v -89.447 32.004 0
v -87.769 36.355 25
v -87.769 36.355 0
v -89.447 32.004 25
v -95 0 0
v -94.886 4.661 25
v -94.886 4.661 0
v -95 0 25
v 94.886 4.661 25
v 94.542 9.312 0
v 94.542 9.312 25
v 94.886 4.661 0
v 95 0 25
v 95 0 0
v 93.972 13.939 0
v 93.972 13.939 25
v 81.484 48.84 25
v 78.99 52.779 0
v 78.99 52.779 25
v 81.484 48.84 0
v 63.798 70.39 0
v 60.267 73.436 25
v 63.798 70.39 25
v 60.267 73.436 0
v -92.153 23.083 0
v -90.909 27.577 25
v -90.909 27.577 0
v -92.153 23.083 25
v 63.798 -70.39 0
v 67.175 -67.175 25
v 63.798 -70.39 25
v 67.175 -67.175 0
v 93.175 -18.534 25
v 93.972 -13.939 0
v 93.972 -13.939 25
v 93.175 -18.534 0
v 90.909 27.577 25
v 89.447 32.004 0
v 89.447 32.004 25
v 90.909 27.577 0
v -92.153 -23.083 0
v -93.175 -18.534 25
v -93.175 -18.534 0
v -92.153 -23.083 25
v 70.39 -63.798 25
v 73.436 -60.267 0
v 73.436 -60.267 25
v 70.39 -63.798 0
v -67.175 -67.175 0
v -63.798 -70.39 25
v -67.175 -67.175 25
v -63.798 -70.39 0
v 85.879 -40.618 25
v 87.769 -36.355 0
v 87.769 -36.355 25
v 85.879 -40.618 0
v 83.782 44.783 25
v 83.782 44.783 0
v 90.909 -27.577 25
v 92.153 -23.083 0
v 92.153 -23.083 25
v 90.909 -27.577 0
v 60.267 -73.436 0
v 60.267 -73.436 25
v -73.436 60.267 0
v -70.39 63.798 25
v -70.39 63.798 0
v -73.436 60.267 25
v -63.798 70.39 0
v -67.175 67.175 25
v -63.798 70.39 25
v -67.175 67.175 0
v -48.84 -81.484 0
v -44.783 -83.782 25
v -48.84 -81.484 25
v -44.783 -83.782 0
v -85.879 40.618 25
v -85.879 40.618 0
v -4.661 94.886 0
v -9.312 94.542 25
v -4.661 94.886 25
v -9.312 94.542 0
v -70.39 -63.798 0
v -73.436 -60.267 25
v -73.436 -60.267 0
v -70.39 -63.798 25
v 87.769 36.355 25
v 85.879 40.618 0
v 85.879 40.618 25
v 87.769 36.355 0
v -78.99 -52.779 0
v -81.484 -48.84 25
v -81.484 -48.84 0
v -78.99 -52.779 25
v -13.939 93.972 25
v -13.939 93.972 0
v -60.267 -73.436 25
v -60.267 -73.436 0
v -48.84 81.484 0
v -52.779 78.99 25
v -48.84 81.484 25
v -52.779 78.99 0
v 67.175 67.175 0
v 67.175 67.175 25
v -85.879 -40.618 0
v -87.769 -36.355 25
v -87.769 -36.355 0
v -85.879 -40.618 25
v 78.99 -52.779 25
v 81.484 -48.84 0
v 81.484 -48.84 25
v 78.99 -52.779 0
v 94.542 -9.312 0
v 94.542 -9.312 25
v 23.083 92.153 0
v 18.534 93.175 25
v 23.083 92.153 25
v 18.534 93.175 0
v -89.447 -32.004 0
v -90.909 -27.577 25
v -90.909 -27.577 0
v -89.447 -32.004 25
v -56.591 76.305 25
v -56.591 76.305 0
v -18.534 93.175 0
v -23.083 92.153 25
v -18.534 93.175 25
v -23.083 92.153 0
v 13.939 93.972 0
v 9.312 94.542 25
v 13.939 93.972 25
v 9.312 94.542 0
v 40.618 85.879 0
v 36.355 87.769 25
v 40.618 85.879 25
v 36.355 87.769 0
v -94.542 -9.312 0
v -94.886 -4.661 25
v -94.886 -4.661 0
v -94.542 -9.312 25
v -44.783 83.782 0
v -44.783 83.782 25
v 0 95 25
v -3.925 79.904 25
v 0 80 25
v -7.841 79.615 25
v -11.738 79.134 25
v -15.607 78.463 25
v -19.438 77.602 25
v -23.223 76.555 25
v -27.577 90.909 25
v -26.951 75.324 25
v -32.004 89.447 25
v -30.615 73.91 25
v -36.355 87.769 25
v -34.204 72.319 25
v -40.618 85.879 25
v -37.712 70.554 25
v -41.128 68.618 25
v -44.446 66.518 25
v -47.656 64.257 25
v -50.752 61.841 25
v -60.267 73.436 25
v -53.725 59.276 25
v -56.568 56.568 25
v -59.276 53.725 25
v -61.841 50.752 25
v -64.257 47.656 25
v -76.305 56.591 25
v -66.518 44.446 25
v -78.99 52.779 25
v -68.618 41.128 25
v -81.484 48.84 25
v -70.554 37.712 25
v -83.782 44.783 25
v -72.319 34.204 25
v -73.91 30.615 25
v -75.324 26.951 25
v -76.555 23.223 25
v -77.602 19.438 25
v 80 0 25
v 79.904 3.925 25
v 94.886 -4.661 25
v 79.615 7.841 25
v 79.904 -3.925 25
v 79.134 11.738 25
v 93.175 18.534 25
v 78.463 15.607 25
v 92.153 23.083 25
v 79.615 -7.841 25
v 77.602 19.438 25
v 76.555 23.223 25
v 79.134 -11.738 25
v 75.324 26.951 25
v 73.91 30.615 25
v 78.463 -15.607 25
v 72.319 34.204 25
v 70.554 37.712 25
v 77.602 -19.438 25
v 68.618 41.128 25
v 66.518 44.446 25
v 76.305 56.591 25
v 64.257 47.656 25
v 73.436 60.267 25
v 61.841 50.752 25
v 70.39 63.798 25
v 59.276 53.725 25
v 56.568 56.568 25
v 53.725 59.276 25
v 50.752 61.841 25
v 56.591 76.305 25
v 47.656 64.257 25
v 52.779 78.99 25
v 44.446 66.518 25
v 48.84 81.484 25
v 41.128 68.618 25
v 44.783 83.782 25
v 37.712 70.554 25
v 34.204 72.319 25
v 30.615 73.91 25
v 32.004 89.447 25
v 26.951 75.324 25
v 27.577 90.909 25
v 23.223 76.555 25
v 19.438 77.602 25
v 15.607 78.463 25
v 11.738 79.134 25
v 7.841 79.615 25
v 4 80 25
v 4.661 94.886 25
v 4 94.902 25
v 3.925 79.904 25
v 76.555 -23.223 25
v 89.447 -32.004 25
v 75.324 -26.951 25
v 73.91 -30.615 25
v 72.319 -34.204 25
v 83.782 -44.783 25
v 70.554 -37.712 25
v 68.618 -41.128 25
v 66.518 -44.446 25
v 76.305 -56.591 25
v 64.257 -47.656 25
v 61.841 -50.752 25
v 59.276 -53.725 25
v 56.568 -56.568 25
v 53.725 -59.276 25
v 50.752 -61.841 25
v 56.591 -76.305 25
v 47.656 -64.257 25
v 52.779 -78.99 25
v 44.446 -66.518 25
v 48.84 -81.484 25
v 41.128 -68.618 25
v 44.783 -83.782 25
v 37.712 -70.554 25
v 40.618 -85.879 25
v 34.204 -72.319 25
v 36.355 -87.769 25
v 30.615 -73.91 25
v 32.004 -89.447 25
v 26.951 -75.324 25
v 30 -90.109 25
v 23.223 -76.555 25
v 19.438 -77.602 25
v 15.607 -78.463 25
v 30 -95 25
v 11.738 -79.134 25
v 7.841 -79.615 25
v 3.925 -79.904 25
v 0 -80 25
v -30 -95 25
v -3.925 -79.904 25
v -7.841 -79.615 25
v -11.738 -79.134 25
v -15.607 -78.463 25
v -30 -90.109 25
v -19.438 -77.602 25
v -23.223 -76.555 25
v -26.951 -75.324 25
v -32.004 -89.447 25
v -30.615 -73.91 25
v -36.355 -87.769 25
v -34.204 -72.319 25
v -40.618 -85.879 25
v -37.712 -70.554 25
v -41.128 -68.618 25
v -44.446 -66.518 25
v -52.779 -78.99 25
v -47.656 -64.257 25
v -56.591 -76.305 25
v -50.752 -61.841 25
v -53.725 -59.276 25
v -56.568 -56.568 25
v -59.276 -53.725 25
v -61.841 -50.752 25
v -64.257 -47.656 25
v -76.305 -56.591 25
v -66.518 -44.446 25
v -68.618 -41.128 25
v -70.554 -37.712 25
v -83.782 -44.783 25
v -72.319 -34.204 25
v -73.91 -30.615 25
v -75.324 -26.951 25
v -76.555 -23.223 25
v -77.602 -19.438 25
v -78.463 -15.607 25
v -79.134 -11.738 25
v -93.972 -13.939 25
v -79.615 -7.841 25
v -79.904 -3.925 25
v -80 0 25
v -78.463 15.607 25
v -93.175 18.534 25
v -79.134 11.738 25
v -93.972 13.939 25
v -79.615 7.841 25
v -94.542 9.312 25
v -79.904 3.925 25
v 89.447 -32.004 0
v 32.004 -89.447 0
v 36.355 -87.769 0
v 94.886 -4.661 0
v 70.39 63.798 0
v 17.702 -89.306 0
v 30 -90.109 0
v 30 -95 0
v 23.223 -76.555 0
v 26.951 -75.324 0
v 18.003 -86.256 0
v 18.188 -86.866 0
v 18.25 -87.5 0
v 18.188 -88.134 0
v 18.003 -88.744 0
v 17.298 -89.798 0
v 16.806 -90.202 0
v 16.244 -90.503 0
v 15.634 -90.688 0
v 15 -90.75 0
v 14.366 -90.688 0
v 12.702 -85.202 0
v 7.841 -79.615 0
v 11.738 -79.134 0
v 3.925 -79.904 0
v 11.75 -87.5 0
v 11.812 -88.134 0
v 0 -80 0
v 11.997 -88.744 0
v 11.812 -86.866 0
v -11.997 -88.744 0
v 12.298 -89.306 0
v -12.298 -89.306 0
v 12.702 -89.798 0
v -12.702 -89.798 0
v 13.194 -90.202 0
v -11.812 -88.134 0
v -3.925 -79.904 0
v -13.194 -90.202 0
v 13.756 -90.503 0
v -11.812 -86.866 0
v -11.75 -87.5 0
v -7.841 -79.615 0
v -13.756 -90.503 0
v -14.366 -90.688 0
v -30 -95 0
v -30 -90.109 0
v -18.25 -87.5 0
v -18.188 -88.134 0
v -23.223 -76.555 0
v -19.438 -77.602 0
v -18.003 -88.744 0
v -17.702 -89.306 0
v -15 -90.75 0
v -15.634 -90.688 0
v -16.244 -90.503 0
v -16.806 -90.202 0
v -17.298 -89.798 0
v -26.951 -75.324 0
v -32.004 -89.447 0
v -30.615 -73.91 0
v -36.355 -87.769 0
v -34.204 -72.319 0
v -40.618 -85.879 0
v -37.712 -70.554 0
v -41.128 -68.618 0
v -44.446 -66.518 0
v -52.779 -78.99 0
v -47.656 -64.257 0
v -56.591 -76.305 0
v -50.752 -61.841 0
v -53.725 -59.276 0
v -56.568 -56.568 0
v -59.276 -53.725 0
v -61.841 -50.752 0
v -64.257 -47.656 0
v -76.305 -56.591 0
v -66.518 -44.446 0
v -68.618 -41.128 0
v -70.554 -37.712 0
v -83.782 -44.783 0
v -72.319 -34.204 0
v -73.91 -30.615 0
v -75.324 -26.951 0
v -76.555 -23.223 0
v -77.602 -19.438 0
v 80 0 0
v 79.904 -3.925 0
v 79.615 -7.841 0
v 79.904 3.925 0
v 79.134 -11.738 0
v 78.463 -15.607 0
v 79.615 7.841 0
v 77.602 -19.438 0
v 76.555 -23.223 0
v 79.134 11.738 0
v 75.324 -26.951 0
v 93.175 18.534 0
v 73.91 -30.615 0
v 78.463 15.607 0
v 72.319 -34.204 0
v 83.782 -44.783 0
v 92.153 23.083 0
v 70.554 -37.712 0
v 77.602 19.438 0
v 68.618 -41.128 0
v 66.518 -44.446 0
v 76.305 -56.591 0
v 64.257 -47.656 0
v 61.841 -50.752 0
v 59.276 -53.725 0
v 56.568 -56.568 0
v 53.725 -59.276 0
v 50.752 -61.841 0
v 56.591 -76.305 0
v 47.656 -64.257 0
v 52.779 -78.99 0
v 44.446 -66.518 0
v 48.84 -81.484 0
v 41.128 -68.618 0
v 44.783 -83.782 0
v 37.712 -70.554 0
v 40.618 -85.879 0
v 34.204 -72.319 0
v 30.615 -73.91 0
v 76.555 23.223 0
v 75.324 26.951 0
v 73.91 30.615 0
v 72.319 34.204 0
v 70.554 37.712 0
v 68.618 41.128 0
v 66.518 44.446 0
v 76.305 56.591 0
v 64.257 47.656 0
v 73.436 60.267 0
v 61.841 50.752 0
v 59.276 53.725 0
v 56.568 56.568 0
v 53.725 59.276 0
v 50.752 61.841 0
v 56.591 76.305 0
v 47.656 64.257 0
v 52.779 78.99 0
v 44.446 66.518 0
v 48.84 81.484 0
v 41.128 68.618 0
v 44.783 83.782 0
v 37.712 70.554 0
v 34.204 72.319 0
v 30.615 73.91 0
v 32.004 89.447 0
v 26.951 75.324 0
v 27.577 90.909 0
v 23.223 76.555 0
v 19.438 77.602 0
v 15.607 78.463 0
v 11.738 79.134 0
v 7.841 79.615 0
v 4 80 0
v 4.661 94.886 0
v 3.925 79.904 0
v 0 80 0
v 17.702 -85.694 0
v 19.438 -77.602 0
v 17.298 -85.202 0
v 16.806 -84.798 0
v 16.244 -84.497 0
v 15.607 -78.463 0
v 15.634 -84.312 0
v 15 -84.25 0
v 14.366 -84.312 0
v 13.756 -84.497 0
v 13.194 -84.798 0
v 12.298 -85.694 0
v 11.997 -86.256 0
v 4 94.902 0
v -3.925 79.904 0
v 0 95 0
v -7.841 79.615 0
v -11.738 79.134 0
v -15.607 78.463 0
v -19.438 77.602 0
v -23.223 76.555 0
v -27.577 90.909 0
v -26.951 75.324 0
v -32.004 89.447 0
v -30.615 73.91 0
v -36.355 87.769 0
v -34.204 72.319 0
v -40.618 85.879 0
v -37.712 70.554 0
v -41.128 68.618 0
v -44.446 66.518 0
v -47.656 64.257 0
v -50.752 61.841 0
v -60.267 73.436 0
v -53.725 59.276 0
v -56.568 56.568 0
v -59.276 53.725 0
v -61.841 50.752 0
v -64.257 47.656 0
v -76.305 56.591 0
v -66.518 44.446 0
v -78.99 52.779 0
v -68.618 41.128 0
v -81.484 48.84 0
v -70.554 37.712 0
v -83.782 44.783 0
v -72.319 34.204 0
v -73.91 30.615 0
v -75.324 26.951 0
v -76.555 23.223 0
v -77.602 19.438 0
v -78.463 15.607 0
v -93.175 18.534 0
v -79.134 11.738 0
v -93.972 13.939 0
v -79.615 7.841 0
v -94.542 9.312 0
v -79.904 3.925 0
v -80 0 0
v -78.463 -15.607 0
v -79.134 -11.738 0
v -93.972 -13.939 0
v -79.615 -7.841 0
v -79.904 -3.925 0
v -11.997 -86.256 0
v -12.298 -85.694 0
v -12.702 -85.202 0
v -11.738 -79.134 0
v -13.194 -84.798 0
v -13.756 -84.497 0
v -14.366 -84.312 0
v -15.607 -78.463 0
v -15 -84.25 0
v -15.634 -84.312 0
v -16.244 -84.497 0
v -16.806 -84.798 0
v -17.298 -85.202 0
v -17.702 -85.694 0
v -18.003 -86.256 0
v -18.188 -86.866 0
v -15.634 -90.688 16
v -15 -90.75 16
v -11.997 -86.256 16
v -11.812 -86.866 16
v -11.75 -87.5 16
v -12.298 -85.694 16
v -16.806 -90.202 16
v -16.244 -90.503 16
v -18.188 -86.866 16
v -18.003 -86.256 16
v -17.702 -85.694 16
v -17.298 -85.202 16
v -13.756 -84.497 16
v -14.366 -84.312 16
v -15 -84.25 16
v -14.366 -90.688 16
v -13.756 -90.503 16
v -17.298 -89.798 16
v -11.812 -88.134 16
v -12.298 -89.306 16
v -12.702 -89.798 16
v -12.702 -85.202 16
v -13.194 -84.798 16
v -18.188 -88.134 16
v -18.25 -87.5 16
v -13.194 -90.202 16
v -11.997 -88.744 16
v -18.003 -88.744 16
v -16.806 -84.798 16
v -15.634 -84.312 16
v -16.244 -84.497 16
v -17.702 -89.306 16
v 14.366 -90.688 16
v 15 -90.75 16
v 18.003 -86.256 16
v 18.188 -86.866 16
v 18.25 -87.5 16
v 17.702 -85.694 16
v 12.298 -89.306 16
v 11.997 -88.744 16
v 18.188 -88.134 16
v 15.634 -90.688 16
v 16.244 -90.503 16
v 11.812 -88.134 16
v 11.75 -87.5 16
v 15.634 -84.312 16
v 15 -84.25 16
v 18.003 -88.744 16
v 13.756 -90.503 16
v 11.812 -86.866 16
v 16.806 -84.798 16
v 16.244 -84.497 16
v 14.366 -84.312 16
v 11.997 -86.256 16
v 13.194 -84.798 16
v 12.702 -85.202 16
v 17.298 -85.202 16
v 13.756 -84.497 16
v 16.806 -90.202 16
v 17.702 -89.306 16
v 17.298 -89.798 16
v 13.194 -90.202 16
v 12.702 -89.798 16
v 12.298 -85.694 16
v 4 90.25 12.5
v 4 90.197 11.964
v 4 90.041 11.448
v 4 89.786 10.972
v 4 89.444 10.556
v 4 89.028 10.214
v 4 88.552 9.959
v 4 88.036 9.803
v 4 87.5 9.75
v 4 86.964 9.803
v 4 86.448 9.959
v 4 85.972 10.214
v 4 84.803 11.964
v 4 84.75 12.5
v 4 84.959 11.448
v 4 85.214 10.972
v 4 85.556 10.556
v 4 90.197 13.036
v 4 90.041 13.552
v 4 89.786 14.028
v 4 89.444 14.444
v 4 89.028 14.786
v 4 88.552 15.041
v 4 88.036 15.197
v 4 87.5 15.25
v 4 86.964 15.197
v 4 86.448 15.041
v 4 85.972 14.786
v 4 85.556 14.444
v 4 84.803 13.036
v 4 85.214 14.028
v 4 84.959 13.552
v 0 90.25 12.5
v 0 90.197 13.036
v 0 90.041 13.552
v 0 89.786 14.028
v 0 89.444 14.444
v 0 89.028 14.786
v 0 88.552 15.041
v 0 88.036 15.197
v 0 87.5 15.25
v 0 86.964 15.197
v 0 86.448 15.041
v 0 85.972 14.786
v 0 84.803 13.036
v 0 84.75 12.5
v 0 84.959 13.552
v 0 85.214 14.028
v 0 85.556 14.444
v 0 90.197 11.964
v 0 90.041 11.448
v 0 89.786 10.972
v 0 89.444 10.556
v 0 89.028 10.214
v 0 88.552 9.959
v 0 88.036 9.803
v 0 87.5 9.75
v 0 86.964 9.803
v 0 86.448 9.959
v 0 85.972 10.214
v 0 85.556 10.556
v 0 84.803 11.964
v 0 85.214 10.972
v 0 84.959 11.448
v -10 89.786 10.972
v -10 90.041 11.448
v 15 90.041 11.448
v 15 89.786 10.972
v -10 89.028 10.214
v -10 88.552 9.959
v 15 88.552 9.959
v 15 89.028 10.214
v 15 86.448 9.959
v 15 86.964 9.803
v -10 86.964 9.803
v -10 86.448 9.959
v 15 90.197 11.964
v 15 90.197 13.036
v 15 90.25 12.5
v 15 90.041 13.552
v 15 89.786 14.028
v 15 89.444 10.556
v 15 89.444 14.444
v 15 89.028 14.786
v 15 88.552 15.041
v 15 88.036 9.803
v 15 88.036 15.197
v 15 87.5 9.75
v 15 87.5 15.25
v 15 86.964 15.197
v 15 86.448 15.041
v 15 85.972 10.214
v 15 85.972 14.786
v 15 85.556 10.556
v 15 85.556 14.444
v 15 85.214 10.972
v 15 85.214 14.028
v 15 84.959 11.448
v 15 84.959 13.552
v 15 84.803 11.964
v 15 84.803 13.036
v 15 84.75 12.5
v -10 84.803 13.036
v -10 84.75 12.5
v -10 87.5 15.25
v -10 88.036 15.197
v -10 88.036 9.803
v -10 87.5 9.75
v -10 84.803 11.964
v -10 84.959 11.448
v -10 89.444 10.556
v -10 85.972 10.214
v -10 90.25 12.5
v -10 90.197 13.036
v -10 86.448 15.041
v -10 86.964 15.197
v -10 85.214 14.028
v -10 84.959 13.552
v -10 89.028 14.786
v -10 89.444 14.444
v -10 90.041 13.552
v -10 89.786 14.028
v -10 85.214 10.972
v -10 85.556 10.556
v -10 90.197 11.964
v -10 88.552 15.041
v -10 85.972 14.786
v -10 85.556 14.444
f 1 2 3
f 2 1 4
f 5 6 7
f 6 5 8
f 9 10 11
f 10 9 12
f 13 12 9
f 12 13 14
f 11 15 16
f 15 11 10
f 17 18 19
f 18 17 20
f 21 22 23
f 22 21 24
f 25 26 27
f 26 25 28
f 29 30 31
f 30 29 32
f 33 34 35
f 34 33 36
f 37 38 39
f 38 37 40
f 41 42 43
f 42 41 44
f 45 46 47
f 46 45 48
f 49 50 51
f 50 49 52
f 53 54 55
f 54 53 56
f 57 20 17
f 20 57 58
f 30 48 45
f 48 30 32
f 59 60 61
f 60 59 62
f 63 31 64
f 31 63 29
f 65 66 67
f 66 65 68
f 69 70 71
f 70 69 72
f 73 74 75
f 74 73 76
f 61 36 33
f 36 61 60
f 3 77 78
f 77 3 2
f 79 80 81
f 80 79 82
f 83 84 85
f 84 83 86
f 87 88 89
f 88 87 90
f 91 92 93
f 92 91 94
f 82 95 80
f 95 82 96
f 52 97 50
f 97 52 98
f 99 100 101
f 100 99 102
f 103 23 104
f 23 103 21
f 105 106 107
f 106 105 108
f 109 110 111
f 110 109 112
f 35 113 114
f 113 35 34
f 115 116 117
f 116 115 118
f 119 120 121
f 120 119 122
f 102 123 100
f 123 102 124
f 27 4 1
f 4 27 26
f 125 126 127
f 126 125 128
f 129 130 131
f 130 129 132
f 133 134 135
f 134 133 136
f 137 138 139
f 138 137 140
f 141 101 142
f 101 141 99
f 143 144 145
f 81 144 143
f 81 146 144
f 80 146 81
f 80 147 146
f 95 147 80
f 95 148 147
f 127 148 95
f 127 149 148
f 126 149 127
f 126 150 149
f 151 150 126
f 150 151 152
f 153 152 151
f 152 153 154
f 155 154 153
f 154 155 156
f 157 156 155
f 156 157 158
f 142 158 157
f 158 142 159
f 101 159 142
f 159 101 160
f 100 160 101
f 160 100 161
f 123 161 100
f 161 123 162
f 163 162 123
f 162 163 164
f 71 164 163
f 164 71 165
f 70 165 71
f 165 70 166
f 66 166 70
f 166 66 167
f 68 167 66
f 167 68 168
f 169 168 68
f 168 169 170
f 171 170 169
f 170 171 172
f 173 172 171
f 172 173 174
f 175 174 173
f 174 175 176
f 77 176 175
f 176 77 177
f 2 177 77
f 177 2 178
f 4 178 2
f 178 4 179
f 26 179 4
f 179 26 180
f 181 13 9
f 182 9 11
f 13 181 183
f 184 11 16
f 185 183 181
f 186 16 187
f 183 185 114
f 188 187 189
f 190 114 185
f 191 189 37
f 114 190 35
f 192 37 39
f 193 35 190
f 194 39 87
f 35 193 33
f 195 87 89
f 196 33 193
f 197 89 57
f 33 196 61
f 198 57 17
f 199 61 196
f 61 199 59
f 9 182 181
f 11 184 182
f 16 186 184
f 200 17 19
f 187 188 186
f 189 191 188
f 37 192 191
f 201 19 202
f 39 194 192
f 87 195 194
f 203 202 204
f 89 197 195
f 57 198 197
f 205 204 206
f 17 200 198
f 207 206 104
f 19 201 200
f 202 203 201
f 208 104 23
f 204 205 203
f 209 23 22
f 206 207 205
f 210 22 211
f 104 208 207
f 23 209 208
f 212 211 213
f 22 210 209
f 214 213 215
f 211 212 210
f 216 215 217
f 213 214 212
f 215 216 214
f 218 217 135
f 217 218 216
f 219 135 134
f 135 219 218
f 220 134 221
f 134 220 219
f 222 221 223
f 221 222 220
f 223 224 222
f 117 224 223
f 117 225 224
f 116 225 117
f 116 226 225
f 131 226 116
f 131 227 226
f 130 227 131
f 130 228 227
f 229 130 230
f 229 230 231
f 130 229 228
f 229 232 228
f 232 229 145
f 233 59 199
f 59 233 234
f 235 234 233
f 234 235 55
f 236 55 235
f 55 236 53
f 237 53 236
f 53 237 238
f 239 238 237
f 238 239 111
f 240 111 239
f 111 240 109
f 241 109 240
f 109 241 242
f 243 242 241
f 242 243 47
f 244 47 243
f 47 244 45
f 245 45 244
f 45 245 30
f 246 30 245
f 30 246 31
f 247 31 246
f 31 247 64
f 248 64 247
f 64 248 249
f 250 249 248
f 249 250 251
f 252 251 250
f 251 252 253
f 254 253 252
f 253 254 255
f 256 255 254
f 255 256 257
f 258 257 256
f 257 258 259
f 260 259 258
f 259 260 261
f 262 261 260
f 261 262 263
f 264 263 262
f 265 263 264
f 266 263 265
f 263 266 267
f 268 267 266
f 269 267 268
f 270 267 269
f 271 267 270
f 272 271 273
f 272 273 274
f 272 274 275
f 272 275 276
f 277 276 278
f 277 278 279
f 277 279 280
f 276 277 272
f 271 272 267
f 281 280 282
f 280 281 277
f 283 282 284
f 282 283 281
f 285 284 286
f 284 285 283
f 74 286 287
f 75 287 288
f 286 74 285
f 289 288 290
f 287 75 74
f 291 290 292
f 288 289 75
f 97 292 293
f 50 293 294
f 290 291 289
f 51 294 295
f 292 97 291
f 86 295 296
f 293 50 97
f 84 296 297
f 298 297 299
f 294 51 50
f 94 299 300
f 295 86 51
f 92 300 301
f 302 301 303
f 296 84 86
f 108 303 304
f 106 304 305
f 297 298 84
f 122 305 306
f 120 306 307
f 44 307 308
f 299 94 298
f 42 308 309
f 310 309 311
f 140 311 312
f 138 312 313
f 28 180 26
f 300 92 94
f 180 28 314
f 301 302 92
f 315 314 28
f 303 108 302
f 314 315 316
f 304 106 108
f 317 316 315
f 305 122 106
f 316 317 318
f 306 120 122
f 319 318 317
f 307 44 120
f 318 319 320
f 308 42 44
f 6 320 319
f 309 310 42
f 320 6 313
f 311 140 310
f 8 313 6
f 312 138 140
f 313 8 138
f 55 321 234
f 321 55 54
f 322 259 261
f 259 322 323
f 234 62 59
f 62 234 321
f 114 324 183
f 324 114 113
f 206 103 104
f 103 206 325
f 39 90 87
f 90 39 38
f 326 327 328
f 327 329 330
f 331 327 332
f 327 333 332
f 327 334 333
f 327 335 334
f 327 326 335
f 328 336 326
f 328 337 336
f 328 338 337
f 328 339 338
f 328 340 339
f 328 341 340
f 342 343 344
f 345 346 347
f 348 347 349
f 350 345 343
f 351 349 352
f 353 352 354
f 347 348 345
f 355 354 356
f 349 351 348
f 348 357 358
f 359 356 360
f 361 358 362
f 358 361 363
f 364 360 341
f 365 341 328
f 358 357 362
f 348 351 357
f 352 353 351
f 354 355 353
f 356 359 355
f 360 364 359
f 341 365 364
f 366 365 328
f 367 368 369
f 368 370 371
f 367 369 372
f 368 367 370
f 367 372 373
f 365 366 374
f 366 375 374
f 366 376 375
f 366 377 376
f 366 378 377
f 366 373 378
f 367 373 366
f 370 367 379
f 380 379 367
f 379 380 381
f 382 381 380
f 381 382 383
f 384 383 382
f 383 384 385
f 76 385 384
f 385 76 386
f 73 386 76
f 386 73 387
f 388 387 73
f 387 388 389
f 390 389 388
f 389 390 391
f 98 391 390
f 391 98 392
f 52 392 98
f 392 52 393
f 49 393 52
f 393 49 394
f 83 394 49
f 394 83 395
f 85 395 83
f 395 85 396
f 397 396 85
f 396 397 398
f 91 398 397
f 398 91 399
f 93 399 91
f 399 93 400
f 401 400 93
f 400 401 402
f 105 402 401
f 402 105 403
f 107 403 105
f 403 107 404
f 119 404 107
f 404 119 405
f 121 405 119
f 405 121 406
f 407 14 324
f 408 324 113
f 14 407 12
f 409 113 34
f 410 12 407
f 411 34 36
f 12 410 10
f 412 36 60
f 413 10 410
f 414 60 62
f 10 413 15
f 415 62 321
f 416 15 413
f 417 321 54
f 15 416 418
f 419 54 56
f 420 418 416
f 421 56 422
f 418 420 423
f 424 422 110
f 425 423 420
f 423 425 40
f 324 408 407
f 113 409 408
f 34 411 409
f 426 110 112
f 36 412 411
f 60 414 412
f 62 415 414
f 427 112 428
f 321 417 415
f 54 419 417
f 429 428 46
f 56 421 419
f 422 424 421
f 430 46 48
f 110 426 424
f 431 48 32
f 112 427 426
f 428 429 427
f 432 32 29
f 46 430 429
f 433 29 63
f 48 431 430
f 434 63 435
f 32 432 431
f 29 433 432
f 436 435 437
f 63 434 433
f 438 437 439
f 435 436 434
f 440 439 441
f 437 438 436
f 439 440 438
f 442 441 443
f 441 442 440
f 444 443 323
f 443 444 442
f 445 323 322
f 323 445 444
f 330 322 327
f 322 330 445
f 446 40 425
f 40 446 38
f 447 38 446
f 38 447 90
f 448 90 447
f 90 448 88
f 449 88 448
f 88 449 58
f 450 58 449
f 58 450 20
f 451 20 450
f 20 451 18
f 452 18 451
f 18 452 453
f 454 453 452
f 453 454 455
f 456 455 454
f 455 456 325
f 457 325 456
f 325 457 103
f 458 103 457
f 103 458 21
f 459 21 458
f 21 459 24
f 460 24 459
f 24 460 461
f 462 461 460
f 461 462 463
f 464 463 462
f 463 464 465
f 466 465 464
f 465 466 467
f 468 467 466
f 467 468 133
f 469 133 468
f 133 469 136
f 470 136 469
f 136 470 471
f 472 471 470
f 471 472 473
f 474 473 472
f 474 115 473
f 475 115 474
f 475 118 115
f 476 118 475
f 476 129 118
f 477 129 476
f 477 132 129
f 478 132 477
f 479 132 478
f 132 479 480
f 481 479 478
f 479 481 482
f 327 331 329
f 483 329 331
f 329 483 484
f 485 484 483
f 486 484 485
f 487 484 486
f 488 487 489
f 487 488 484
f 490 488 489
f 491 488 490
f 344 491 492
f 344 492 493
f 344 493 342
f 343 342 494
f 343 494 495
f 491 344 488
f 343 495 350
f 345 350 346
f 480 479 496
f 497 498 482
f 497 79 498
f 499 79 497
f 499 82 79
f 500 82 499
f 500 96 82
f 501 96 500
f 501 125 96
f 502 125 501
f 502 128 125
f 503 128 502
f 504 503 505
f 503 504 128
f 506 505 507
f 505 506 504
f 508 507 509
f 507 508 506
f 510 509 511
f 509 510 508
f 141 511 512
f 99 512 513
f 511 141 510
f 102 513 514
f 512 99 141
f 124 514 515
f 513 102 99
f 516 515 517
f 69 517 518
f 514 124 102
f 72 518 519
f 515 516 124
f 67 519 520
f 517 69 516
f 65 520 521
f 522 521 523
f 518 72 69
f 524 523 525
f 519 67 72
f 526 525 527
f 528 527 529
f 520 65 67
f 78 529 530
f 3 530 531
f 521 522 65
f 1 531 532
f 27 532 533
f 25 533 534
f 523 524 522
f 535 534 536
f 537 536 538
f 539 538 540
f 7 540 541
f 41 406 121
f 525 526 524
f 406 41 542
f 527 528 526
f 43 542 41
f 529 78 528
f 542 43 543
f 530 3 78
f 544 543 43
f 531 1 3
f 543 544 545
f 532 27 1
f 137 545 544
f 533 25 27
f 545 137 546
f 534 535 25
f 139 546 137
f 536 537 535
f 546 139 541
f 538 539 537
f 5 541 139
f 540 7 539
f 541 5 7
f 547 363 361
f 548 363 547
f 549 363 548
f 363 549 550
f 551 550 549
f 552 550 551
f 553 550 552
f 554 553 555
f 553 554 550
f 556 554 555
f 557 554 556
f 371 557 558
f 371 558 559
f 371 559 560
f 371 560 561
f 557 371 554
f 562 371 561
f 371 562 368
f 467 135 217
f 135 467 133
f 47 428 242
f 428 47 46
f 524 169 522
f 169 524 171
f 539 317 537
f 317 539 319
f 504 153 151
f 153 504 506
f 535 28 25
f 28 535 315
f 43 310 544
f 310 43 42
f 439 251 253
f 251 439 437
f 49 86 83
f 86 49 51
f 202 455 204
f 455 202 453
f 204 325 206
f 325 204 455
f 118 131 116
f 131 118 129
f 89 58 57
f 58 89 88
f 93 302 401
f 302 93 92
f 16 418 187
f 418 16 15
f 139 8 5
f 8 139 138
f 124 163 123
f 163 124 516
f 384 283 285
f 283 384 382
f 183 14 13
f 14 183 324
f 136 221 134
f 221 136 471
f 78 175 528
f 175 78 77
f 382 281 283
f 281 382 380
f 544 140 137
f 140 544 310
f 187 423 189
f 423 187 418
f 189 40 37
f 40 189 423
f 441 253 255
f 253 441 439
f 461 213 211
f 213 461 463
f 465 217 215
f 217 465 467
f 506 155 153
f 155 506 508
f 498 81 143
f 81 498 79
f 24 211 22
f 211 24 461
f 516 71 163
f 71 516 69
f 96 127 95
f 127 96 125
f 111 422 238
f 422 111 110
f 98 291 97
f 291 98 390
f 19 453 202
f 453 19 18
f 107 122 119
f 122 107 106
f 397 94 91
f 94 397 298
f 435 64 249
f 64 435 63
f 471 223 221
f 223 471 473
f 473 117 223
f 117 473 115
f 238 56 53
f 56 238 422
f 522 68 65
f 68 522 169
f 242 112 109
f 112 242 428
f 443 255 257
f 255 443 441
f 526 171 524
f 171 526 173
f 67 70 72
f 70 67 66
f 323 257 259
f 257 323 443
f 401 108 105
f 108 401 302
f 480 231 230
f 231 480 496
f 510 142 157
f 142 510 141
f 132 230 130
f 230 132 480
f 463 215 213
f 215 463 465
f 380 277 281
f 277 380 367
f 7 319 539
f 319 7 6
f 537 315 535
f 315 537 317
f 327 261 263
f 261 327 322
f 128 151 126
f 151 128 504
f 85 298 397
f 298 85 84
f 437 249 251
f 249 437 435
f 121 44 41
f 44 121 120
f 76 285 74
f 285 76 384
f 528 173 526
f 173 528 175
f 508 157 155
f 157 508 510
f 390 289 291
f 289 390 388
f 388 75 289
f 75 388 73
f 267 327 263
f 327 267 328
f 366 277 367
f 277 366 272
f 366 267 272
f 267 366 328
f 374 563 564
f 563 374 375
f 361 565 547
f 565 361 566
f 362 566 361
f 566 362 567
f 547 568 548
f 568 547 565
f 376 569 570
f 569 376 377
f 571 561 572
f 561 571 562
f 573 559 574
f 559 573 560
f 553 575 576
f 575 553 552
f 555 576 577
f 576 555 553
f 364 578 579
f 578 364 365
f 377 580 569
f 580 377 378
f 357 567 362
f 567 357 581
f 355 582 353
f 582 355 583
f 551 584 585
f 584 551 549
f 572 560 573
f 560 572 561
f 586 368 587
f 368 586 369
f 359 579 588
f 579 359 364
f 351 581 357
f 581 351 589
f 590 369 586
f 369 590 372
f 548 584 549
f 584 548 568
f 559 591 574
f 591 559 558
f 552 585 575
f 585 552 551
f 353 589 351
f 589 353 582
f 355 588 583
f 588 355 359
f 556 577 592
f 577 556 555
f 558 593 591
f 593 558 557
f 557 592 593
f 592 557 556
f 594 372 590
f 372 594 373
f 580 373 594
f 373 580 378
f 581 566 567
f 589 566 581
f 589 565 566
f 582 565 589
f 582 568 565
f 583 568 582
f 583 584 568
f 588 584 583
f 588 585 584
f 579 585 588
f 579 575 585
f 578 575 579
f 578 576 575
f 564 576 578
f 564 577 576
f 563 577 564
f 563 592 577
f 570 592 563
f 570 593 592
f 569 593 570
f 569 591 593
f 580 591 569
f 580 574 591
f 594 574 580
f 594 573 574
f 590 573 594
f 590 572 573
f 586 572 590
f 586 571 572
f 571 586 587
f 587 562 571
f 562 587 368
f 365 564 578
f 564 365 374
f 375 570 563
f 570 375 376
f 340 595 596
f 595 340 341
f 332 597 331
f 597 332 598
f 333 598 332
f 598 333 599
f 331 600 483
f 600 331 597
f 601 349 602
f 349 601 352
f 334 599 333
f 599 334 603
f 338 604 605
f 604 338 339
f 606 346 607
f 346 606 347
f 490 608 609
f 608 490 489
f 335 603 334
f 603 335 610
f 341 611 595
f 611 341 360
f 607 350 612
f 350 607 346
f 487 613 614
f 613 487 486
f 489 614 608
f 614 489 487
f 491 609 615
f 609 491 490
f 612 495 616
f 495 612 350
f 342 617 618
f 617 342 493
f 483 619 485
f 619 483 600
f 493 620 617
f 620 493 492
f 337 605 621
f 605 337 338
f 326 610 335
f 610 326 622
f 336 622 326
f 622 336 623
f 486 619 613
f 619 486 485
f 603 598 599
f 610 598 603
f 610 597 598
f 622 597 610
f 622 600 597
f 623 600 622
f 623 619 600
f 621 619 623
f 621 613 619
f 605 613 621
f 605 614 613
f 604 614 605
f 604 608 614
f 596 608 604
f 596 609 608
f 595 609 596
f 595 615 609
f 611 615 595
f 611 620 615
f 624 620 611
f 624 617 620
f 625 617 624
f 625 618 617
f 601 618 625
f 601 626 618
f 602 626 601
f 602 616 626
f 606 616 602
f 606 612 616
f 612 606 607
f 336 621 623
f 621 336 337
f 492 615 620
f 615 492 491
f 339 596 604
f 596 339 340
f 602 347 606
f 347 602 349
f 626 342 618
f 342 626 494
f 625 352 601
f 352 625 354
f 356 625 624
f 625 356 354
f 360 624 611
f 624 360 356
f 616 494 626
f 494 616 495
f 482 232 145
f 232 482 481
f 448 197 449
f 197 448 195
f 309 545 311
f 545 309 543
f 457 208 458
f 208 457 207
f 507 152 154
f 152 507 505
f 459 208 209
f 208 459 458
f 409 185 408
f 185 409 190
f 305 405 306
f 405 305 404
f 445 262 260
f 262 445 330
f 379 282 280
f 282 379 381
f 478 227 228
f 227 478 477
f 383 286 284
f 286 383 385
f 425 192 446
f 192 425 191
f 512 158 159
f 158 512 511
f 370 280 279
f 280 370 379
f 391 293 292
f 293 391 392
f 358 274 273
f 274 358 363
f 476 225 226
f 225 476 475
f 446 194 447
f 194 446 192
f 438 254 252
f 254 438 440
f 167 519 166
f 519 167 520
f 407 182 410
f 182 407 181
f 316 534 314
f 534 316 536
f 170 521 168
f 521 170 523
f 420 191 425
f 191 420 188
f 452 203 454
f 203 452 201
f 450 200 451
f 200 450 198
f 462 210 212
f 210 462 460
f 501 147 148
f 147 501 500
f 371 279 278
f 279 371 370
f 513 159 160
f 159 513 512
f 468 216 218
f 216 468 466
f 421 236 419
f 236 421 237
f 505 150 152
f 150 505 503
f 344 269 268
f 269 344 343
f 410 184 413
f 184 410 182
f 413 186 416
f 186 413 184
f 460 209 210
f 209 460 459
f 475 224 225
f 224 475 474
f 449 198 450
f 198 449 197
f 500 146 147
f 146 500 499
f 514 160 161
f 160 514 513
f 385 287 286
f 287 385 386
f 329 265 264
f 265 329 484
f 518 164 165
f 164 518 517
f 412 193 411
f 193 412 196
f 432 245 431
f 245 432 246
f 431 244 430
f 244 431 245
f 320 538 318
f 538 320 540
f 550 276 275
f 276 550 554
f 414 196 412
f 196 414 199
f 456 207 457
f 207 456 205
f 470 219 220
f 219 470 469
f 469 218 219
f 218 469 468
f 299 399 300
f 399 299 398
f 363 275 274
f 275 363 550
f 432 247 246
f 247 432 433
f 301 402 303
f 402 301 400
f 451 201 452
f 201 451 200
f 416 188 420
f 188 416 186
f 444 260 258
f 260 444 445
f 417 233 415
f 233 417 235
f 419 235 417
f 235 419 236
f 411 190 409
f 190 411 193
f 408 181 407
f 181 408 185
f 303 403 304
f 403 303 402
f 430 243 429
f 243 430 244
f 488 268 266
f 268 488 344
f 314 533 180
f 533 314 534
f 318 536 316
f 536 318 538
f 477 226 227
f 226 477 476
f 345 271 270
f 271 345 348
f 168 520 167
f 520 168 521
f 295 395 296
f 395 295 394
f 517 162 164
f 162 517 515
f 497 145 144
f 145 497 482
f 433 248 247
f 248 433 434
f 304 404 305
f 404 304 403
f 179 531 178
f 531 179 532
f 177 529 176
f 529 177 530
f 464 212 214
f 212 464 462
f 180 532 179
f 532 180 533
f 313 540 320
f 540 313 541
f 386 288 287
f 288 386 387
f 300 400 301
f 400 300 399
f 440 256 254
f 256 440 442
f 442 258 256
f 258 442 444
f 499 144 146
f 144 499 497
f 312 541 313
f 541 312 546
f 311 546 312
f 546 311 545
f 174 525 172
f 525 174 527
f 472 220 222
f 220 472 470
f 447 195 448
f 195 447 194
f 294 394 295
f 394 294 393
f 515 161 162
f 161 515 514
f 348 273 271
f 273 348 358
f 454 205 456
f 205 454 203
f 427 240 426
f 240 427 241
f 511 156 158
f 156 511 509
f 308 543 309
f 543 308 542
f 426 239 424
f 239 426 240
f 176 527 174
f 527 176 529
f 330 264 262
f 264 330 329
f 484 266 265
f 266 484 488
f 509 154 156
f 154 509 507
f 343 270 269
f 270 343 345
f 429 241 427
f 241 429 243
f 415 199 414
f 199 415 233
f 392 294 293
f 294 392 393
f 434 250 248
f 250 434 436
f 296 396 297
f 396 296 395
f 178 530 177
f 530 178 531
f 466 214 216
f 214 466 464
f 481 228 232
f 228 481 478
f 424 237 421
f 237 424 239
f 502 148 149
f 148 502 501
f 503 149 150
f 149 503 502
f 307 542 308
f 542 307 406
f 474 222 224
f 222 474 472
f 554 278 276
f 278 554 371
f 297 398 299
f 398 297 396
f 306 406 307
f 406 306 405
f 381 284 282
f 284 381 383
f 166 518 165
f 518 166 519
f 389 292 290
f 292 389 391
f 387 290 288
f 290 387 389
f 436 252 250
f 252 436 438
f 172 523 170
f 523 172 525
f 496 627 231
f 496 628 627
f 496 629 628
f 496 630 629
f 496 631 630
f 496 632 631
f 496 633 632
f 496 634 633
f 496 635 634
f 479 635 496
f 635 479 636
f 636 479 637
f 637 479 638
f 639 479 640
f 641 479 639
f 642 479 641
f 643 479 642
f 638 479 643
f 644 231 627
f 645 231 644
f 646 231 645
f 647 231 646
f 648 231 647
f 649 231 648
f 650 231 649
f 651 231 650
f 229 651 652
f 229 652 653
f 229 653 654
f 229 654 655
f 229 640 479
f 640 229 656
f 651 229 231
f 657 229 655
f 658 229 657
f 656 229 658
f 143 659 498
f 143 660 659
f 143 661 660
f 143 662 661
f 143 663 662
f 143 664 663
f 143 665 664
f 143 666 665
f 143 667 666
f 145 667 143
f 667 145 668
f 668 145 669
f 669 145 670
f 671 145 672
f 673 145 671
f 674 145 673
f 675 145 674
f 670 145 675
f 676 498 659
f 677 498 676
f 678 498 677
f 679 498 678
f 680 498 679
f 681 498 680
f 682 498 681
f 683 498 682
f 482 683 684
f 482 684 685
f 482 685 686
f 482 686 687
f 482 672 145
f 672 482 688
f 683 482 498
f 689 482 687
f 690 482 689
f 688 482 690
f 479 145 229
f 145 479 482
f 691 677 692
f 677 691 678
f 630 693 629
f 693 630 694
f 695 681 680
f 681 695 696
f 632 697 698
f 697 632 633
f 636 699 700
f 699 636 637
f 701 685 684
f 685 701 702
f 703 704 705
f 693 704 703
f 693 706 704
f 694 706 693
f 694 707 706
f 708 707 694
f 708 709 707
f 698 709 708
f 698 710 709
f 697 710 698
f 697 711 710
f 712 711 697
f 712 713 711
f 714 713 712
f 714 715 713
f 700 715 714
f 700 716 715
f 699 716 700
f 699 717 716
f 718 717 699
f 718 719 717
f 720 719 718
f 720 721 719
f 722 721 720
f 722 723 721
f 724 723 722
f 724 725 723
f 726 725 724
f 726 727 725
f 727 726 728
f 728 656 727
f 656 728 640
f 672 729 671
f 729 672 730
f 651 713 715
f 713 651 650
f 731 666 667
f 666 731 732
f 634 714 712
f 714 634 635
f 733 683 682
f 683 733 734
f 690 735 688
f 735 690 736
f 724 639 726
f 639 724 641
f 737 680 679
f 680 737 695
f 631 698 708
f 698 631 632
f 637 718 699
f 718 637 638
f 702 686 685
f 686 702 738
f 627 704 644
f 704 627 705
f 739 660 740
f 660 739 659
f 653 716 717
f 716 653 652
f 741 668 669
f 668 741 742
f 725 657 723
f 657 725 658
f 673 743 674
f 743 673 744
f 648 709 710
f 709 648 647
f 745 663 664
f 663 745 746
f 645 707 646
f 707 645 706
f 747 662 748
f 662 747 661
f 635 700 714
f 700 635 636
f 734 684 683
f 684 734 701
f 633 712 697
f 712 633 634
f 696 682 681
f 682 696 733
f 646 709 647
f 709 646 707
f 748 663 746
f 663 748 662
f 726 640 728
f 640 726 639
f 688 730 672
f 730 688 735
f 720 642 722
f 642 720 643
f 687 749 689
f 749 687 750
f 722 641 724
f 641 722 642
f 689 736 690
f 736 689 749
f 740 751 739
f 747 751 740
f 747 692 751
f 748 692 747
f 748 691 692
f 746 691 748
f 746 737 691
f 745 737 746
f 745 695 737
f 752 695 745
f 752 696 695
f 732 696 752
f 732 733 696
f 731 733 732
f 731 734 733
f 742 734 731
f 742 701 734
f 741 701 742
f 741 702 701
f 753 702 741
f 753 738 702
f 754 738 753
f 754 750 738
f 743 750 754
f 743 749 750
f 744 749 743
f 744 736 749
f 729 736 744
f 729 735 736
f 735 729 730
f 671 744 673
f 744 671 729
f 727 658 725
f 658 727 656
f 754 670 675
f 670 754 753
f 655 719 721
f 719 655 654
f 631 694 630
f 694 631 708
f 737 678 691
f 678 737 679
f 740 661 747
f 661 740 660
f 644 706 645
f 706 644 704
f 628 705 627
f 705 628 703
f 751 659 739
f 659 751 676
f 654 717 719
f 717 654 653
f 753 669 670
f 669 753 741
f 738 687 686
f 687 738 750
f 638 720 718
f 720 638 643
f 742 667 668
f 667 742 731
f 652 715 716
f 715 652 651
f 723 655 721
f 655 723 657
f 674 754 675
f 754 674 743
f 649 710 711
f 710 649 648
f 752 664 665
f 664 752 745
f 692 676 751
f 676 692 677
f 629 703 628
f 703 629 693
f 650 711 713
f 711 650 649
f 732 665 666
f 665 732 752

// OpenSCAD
// Tube Rings (镜筒抱箍)
// 单位: mm

tube_od = 160; // 镜筒外径
ring_thickness = 15; // 抱箍壁厚
ring_width = 25; // 抱箍宽度
base_flat = 60; // 底部连接鸠尾板的平底宽度

module tube_ring() {
    difference() {
        union() {
            // 主体圆环
            cylinder(d=tube_od + ring_thickness*2, h=ring_width, $fn=128);
            // 底部加强/平底部位
            translate([-base_flat/2, -(tube_od/2 + ring_thickness), 0])
            cube([base_flat, ring_thickness, ring_width]);
        }
        
        // 切除内径孔
        translate([0, 0, -1])
        cylinder(d=tube_od, h=ring_width+2, $fn=128);
        
        // 侧面切开槽 (便于套入并用螺丝锁紧)
        translate([0, tube_od/2, -1])
        cube([4, tube_od/2 + ring_thickness + 2, ring_width+2]);
        
        // 锁紧螺丝孔位
        translate([-10, tube_od/2 + ring_thickness/2, ring_width/2])
        rotate([0, 90, 0])
        cylinder(d=5.5, h=25, $fn=32); // 适用 M5 长螺丝
        
        // 底部连接鸠尾板的安装孔
        for(x=[-15, 15]) {
            translate([x, -(tube_od/2 + ring_thickness/2), -1])
            cylinder(d=6.5, h=ring_thickness+2, $fn=32); // M6螺丝孔
        }
    }
}

tube_ring();
